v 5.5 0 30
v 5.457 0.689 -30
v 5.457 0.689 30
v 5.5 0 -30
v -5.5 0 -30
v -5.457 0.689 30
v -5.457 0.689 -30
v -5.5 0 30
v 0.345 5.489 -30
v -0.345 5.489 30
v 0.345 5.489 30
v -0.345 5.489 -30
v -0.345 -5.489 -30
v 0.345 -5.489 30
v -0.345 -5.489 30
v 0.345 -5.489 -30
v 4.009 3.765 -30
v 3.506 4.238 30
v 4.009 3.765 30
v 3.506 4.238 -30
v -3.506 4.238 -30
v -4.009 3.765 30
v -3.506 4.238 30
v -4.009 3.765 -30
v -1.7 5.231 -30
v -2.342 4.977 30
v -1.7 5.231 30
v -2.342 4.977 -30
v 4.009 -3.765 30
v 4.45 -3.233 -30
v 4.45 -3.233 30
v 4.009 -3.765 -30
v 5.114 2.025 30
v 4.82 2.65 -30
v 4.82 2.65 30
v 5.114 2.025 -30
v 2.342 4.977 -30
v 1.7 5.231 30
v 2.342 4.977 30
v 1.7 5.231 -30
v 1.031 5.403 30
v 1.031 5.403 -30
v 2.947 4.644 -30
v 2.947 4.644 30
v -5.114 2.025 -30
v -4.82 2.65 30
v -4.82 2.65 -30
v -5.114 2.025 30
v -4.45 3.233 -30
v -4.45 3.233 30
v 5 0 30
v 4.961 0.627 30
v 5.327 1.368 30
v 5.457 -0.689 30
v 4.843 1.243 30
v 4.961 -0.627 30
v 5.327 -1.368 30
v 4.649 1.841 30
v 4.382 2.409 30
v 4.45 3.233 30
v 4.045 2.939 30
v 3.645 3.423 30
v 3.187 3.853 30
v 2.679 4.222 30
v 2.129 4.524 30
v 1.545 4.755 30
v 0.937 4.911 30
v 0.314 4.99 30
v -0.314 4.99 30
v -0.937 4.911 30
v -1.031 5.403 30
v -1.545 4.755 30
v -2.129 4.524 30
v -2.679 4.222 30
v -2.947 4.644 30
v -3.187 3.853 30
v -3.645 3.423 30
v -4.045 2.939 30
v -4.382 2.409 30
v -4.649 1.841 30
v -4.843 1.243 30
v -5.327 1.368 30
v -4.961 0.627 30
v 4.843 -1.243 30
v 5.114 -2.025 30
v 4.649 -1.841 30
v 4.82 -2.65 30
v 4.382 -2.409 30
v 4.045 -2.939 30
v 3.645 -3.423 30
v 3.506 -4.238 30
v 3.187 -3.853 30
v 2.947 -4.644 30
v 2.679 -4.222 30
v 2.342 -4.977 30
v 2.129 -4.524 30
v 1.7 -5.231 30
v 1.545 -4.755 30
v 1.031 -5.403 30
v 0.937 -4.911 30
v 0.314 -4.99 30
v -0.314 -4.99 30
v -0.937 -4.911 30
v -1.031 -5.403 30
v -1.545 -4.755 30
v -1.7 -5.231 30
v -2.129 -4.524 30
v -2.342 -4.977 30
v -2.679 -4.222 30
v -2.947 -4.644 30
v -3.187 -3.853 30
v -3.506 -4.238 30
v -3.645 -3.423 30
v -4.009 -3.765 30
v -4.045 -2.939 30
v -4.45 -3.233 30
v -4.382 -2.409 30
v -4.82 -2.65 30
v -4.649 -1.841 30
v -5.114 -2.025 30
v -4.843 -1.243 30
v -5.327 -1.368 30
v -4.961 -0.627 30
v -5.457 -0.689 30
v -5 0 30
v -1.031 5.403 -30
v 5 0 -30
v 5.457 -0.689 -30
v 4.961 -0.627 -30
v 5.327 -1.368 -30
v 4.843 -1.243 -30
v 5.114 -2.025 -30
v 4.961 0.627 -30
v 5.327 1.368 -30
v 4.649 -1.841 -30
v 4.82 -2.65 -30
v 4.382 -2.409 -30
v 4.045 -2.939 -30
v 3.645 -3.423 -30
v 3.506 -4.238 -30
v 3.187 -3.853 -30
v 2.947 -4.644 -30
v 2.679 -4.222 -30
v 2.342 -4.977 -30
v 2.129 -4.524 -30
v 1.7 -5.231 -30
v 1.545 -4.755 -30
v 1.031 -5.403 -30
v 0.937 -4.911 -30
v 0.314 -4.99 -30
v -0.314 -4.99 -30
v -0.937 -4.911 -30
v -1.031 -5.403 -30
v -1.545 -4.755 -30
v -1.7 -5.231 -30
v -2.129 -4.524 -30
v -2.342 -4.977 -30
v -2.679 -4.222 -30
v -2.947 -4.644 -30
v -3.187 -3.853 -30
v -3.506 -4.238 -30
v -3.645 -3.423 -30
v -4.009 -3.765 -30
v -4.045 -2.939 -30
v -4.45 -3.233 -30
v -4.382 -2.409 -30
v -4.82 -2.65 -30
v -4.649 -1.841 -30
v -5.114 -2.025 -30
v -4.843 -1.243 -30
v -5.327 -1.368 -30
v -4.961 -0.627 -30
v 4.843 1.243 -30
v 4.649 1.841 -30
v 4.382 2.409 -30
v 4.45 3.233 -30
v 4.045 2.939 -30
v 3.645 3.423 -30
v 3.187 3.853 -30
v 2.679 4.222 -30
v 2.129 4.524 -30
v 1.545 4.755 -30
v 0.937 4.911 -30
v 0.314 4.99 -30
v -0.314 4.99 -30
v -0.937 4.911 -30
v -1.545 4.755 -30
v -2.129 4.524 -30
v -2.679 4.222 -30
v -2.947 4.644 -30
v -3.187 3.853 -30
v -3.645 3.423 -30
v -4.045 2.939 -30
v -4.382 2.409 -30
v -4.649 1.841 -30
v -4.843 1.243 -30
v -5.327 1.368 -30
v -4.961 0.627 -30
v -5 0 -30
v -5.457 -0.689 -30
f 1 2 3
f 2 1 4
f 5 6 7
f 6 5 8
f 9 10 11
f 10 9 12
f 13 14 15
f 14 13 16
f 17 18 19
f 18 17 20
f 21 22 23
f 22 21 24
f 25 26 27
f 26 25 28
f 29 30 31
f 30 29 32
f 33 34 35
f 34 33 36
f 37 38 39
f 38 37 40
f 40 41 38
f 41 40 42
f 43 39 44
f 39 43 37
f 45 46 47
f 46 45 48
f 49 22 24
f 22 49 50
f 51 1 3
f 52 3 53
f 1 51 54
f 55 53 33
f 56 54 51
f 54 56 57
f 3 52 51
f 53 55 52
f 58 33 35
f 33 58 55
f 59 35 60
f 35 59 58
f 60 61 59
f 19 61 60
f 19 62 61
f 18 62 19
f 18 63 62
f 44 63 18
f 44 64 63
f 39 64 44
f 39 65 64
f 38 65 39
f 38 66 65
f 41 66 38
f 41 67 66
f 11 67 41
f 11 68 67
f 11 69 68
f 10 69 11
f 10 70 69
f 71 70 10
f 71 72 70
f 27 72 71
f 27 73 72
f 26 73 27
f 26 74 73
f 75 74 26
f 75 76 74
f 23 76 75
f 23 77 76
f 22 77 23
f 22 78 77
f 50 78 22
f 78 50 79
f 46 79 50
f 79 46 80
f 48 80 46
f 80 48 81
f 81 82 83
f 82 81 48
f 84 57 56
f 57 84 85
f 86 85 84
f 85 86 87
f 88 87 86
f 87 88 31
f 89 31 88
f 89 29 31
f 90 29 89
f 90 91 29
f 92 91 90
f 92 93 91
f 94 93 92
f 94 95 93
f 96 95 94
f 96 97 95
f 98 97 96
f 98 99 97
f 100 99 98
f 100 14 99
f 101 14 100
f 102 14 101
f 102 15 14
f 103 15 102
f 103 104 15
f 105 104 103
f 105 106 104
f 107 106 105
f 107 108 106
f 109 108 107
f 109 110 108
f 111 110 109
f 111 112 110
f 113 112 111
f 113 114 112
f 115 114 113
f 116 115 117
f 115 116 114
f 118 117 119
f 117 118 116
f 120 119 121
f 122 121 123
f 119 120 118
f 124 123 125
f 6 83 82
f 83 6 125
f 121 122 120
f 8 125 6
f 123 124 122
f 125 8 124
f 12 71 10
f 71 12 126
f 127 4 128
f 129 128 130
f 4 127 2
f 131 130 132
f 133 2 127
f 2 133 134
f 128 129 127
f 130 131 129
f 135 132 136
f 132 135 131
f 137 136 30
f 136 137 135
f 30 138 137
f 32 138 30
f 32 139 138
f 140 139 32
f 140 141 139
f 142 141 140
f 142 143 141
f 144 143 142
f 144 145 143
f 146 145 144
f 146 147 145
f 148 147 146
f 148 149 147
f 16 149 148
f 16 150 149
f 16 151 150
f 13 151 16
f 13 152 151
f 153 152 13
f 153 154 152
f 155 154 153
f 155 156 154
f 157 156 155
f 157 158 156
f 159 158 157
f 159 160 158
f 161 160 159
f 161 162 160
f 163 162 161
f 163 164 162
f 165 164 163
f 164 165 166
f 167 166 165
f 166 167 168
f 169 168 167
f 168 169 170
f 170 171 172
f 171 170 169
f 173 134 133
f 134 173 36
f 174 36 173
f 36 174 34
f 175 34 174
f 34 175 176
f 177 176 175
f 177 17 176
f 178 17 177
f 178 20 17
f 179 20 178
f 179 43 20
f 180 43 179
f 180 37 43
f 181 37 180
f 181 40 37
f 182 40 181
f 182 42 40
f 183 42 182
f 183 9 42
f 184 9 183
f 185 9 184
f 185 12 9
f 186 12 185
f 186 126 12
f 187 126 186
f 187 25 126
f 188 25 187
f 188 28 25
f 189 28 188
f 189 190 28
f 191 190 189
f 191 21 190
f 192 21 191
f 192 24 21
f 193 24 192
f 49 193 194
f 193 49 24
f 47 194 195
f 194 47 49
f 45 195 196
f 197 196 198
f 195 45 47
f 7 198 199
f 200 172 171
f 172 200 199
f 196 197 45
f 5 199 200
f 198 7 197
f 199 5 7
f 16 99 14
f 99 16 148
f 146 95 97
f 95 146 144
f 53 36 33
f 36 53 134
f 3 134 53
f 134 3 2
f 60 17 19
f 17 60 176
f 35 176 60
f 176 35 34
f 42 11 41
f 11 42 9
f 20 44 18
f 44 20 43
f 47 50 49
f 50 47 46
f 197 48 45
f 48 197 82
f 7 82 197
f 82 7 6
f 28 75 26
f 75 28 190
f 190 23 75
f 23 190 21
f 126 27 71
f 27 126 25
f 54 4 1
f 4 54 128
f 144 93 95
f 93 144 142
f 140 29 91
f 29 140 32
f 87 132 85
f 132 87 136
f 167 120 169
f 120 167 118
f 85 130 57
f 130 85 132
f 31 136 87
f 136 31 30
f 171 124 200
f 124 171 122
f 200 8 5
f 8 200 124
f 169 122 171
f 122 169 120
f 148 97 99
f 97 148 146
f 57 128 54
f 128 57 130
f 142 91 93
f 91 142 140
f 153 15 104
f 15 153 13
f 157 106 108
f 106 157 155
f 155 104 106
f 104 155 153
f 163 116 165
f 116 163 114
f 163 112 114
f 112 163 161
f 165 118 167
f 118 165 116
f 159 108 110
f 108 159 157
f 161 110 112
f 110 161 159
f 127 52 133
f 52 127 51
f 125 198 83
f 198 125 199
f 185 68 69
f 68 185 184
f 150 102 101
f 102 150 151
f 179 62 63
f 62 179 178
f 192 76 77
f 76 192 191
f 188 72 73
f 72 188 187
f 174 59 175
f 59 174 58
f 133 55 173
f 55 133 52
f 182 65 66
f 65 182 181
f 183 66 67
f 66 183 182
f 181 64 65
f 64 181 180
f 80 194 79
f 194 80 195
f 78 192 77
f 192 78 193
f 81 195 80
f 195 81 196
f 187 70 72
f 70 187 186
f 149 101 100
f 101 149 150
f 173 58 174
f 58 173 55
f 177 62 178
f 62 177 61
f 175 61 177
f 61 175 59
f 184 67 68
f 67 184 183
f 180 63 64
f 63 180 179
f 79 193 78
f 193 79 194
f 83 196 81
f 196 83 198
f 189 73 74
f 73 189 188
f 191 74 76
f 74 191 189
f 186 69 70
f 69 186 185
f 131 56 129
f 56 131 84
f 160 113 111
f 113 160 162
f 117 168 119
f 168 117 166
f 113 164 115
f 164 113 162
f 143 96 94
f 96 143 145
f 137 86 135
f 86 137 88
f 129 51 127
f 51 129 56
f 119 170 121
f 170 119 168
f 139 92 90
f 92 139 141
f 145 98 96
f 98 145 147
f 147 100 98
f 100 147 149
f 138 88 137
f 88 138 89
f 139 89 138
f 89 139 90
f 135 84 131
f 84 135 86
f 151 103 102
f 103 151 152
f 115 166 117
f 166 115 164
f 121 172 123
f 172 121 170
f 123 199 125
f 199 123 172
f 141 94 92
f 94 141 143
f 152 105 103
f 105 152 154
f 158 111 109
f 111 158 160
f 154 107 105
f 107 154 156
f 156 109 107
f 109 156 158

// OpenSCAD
$fn = 50;


difference() {
	union() {
		translate(v = [0, 0, -30.0000000000]) {
			cylinder(h = 60, r = 5.5000000000);
		}
	}
	union() {
		translate(v = [0, 0, -100.0000000000]) {
			cylinder(h = 200, r = 5);
		}
	}
}
